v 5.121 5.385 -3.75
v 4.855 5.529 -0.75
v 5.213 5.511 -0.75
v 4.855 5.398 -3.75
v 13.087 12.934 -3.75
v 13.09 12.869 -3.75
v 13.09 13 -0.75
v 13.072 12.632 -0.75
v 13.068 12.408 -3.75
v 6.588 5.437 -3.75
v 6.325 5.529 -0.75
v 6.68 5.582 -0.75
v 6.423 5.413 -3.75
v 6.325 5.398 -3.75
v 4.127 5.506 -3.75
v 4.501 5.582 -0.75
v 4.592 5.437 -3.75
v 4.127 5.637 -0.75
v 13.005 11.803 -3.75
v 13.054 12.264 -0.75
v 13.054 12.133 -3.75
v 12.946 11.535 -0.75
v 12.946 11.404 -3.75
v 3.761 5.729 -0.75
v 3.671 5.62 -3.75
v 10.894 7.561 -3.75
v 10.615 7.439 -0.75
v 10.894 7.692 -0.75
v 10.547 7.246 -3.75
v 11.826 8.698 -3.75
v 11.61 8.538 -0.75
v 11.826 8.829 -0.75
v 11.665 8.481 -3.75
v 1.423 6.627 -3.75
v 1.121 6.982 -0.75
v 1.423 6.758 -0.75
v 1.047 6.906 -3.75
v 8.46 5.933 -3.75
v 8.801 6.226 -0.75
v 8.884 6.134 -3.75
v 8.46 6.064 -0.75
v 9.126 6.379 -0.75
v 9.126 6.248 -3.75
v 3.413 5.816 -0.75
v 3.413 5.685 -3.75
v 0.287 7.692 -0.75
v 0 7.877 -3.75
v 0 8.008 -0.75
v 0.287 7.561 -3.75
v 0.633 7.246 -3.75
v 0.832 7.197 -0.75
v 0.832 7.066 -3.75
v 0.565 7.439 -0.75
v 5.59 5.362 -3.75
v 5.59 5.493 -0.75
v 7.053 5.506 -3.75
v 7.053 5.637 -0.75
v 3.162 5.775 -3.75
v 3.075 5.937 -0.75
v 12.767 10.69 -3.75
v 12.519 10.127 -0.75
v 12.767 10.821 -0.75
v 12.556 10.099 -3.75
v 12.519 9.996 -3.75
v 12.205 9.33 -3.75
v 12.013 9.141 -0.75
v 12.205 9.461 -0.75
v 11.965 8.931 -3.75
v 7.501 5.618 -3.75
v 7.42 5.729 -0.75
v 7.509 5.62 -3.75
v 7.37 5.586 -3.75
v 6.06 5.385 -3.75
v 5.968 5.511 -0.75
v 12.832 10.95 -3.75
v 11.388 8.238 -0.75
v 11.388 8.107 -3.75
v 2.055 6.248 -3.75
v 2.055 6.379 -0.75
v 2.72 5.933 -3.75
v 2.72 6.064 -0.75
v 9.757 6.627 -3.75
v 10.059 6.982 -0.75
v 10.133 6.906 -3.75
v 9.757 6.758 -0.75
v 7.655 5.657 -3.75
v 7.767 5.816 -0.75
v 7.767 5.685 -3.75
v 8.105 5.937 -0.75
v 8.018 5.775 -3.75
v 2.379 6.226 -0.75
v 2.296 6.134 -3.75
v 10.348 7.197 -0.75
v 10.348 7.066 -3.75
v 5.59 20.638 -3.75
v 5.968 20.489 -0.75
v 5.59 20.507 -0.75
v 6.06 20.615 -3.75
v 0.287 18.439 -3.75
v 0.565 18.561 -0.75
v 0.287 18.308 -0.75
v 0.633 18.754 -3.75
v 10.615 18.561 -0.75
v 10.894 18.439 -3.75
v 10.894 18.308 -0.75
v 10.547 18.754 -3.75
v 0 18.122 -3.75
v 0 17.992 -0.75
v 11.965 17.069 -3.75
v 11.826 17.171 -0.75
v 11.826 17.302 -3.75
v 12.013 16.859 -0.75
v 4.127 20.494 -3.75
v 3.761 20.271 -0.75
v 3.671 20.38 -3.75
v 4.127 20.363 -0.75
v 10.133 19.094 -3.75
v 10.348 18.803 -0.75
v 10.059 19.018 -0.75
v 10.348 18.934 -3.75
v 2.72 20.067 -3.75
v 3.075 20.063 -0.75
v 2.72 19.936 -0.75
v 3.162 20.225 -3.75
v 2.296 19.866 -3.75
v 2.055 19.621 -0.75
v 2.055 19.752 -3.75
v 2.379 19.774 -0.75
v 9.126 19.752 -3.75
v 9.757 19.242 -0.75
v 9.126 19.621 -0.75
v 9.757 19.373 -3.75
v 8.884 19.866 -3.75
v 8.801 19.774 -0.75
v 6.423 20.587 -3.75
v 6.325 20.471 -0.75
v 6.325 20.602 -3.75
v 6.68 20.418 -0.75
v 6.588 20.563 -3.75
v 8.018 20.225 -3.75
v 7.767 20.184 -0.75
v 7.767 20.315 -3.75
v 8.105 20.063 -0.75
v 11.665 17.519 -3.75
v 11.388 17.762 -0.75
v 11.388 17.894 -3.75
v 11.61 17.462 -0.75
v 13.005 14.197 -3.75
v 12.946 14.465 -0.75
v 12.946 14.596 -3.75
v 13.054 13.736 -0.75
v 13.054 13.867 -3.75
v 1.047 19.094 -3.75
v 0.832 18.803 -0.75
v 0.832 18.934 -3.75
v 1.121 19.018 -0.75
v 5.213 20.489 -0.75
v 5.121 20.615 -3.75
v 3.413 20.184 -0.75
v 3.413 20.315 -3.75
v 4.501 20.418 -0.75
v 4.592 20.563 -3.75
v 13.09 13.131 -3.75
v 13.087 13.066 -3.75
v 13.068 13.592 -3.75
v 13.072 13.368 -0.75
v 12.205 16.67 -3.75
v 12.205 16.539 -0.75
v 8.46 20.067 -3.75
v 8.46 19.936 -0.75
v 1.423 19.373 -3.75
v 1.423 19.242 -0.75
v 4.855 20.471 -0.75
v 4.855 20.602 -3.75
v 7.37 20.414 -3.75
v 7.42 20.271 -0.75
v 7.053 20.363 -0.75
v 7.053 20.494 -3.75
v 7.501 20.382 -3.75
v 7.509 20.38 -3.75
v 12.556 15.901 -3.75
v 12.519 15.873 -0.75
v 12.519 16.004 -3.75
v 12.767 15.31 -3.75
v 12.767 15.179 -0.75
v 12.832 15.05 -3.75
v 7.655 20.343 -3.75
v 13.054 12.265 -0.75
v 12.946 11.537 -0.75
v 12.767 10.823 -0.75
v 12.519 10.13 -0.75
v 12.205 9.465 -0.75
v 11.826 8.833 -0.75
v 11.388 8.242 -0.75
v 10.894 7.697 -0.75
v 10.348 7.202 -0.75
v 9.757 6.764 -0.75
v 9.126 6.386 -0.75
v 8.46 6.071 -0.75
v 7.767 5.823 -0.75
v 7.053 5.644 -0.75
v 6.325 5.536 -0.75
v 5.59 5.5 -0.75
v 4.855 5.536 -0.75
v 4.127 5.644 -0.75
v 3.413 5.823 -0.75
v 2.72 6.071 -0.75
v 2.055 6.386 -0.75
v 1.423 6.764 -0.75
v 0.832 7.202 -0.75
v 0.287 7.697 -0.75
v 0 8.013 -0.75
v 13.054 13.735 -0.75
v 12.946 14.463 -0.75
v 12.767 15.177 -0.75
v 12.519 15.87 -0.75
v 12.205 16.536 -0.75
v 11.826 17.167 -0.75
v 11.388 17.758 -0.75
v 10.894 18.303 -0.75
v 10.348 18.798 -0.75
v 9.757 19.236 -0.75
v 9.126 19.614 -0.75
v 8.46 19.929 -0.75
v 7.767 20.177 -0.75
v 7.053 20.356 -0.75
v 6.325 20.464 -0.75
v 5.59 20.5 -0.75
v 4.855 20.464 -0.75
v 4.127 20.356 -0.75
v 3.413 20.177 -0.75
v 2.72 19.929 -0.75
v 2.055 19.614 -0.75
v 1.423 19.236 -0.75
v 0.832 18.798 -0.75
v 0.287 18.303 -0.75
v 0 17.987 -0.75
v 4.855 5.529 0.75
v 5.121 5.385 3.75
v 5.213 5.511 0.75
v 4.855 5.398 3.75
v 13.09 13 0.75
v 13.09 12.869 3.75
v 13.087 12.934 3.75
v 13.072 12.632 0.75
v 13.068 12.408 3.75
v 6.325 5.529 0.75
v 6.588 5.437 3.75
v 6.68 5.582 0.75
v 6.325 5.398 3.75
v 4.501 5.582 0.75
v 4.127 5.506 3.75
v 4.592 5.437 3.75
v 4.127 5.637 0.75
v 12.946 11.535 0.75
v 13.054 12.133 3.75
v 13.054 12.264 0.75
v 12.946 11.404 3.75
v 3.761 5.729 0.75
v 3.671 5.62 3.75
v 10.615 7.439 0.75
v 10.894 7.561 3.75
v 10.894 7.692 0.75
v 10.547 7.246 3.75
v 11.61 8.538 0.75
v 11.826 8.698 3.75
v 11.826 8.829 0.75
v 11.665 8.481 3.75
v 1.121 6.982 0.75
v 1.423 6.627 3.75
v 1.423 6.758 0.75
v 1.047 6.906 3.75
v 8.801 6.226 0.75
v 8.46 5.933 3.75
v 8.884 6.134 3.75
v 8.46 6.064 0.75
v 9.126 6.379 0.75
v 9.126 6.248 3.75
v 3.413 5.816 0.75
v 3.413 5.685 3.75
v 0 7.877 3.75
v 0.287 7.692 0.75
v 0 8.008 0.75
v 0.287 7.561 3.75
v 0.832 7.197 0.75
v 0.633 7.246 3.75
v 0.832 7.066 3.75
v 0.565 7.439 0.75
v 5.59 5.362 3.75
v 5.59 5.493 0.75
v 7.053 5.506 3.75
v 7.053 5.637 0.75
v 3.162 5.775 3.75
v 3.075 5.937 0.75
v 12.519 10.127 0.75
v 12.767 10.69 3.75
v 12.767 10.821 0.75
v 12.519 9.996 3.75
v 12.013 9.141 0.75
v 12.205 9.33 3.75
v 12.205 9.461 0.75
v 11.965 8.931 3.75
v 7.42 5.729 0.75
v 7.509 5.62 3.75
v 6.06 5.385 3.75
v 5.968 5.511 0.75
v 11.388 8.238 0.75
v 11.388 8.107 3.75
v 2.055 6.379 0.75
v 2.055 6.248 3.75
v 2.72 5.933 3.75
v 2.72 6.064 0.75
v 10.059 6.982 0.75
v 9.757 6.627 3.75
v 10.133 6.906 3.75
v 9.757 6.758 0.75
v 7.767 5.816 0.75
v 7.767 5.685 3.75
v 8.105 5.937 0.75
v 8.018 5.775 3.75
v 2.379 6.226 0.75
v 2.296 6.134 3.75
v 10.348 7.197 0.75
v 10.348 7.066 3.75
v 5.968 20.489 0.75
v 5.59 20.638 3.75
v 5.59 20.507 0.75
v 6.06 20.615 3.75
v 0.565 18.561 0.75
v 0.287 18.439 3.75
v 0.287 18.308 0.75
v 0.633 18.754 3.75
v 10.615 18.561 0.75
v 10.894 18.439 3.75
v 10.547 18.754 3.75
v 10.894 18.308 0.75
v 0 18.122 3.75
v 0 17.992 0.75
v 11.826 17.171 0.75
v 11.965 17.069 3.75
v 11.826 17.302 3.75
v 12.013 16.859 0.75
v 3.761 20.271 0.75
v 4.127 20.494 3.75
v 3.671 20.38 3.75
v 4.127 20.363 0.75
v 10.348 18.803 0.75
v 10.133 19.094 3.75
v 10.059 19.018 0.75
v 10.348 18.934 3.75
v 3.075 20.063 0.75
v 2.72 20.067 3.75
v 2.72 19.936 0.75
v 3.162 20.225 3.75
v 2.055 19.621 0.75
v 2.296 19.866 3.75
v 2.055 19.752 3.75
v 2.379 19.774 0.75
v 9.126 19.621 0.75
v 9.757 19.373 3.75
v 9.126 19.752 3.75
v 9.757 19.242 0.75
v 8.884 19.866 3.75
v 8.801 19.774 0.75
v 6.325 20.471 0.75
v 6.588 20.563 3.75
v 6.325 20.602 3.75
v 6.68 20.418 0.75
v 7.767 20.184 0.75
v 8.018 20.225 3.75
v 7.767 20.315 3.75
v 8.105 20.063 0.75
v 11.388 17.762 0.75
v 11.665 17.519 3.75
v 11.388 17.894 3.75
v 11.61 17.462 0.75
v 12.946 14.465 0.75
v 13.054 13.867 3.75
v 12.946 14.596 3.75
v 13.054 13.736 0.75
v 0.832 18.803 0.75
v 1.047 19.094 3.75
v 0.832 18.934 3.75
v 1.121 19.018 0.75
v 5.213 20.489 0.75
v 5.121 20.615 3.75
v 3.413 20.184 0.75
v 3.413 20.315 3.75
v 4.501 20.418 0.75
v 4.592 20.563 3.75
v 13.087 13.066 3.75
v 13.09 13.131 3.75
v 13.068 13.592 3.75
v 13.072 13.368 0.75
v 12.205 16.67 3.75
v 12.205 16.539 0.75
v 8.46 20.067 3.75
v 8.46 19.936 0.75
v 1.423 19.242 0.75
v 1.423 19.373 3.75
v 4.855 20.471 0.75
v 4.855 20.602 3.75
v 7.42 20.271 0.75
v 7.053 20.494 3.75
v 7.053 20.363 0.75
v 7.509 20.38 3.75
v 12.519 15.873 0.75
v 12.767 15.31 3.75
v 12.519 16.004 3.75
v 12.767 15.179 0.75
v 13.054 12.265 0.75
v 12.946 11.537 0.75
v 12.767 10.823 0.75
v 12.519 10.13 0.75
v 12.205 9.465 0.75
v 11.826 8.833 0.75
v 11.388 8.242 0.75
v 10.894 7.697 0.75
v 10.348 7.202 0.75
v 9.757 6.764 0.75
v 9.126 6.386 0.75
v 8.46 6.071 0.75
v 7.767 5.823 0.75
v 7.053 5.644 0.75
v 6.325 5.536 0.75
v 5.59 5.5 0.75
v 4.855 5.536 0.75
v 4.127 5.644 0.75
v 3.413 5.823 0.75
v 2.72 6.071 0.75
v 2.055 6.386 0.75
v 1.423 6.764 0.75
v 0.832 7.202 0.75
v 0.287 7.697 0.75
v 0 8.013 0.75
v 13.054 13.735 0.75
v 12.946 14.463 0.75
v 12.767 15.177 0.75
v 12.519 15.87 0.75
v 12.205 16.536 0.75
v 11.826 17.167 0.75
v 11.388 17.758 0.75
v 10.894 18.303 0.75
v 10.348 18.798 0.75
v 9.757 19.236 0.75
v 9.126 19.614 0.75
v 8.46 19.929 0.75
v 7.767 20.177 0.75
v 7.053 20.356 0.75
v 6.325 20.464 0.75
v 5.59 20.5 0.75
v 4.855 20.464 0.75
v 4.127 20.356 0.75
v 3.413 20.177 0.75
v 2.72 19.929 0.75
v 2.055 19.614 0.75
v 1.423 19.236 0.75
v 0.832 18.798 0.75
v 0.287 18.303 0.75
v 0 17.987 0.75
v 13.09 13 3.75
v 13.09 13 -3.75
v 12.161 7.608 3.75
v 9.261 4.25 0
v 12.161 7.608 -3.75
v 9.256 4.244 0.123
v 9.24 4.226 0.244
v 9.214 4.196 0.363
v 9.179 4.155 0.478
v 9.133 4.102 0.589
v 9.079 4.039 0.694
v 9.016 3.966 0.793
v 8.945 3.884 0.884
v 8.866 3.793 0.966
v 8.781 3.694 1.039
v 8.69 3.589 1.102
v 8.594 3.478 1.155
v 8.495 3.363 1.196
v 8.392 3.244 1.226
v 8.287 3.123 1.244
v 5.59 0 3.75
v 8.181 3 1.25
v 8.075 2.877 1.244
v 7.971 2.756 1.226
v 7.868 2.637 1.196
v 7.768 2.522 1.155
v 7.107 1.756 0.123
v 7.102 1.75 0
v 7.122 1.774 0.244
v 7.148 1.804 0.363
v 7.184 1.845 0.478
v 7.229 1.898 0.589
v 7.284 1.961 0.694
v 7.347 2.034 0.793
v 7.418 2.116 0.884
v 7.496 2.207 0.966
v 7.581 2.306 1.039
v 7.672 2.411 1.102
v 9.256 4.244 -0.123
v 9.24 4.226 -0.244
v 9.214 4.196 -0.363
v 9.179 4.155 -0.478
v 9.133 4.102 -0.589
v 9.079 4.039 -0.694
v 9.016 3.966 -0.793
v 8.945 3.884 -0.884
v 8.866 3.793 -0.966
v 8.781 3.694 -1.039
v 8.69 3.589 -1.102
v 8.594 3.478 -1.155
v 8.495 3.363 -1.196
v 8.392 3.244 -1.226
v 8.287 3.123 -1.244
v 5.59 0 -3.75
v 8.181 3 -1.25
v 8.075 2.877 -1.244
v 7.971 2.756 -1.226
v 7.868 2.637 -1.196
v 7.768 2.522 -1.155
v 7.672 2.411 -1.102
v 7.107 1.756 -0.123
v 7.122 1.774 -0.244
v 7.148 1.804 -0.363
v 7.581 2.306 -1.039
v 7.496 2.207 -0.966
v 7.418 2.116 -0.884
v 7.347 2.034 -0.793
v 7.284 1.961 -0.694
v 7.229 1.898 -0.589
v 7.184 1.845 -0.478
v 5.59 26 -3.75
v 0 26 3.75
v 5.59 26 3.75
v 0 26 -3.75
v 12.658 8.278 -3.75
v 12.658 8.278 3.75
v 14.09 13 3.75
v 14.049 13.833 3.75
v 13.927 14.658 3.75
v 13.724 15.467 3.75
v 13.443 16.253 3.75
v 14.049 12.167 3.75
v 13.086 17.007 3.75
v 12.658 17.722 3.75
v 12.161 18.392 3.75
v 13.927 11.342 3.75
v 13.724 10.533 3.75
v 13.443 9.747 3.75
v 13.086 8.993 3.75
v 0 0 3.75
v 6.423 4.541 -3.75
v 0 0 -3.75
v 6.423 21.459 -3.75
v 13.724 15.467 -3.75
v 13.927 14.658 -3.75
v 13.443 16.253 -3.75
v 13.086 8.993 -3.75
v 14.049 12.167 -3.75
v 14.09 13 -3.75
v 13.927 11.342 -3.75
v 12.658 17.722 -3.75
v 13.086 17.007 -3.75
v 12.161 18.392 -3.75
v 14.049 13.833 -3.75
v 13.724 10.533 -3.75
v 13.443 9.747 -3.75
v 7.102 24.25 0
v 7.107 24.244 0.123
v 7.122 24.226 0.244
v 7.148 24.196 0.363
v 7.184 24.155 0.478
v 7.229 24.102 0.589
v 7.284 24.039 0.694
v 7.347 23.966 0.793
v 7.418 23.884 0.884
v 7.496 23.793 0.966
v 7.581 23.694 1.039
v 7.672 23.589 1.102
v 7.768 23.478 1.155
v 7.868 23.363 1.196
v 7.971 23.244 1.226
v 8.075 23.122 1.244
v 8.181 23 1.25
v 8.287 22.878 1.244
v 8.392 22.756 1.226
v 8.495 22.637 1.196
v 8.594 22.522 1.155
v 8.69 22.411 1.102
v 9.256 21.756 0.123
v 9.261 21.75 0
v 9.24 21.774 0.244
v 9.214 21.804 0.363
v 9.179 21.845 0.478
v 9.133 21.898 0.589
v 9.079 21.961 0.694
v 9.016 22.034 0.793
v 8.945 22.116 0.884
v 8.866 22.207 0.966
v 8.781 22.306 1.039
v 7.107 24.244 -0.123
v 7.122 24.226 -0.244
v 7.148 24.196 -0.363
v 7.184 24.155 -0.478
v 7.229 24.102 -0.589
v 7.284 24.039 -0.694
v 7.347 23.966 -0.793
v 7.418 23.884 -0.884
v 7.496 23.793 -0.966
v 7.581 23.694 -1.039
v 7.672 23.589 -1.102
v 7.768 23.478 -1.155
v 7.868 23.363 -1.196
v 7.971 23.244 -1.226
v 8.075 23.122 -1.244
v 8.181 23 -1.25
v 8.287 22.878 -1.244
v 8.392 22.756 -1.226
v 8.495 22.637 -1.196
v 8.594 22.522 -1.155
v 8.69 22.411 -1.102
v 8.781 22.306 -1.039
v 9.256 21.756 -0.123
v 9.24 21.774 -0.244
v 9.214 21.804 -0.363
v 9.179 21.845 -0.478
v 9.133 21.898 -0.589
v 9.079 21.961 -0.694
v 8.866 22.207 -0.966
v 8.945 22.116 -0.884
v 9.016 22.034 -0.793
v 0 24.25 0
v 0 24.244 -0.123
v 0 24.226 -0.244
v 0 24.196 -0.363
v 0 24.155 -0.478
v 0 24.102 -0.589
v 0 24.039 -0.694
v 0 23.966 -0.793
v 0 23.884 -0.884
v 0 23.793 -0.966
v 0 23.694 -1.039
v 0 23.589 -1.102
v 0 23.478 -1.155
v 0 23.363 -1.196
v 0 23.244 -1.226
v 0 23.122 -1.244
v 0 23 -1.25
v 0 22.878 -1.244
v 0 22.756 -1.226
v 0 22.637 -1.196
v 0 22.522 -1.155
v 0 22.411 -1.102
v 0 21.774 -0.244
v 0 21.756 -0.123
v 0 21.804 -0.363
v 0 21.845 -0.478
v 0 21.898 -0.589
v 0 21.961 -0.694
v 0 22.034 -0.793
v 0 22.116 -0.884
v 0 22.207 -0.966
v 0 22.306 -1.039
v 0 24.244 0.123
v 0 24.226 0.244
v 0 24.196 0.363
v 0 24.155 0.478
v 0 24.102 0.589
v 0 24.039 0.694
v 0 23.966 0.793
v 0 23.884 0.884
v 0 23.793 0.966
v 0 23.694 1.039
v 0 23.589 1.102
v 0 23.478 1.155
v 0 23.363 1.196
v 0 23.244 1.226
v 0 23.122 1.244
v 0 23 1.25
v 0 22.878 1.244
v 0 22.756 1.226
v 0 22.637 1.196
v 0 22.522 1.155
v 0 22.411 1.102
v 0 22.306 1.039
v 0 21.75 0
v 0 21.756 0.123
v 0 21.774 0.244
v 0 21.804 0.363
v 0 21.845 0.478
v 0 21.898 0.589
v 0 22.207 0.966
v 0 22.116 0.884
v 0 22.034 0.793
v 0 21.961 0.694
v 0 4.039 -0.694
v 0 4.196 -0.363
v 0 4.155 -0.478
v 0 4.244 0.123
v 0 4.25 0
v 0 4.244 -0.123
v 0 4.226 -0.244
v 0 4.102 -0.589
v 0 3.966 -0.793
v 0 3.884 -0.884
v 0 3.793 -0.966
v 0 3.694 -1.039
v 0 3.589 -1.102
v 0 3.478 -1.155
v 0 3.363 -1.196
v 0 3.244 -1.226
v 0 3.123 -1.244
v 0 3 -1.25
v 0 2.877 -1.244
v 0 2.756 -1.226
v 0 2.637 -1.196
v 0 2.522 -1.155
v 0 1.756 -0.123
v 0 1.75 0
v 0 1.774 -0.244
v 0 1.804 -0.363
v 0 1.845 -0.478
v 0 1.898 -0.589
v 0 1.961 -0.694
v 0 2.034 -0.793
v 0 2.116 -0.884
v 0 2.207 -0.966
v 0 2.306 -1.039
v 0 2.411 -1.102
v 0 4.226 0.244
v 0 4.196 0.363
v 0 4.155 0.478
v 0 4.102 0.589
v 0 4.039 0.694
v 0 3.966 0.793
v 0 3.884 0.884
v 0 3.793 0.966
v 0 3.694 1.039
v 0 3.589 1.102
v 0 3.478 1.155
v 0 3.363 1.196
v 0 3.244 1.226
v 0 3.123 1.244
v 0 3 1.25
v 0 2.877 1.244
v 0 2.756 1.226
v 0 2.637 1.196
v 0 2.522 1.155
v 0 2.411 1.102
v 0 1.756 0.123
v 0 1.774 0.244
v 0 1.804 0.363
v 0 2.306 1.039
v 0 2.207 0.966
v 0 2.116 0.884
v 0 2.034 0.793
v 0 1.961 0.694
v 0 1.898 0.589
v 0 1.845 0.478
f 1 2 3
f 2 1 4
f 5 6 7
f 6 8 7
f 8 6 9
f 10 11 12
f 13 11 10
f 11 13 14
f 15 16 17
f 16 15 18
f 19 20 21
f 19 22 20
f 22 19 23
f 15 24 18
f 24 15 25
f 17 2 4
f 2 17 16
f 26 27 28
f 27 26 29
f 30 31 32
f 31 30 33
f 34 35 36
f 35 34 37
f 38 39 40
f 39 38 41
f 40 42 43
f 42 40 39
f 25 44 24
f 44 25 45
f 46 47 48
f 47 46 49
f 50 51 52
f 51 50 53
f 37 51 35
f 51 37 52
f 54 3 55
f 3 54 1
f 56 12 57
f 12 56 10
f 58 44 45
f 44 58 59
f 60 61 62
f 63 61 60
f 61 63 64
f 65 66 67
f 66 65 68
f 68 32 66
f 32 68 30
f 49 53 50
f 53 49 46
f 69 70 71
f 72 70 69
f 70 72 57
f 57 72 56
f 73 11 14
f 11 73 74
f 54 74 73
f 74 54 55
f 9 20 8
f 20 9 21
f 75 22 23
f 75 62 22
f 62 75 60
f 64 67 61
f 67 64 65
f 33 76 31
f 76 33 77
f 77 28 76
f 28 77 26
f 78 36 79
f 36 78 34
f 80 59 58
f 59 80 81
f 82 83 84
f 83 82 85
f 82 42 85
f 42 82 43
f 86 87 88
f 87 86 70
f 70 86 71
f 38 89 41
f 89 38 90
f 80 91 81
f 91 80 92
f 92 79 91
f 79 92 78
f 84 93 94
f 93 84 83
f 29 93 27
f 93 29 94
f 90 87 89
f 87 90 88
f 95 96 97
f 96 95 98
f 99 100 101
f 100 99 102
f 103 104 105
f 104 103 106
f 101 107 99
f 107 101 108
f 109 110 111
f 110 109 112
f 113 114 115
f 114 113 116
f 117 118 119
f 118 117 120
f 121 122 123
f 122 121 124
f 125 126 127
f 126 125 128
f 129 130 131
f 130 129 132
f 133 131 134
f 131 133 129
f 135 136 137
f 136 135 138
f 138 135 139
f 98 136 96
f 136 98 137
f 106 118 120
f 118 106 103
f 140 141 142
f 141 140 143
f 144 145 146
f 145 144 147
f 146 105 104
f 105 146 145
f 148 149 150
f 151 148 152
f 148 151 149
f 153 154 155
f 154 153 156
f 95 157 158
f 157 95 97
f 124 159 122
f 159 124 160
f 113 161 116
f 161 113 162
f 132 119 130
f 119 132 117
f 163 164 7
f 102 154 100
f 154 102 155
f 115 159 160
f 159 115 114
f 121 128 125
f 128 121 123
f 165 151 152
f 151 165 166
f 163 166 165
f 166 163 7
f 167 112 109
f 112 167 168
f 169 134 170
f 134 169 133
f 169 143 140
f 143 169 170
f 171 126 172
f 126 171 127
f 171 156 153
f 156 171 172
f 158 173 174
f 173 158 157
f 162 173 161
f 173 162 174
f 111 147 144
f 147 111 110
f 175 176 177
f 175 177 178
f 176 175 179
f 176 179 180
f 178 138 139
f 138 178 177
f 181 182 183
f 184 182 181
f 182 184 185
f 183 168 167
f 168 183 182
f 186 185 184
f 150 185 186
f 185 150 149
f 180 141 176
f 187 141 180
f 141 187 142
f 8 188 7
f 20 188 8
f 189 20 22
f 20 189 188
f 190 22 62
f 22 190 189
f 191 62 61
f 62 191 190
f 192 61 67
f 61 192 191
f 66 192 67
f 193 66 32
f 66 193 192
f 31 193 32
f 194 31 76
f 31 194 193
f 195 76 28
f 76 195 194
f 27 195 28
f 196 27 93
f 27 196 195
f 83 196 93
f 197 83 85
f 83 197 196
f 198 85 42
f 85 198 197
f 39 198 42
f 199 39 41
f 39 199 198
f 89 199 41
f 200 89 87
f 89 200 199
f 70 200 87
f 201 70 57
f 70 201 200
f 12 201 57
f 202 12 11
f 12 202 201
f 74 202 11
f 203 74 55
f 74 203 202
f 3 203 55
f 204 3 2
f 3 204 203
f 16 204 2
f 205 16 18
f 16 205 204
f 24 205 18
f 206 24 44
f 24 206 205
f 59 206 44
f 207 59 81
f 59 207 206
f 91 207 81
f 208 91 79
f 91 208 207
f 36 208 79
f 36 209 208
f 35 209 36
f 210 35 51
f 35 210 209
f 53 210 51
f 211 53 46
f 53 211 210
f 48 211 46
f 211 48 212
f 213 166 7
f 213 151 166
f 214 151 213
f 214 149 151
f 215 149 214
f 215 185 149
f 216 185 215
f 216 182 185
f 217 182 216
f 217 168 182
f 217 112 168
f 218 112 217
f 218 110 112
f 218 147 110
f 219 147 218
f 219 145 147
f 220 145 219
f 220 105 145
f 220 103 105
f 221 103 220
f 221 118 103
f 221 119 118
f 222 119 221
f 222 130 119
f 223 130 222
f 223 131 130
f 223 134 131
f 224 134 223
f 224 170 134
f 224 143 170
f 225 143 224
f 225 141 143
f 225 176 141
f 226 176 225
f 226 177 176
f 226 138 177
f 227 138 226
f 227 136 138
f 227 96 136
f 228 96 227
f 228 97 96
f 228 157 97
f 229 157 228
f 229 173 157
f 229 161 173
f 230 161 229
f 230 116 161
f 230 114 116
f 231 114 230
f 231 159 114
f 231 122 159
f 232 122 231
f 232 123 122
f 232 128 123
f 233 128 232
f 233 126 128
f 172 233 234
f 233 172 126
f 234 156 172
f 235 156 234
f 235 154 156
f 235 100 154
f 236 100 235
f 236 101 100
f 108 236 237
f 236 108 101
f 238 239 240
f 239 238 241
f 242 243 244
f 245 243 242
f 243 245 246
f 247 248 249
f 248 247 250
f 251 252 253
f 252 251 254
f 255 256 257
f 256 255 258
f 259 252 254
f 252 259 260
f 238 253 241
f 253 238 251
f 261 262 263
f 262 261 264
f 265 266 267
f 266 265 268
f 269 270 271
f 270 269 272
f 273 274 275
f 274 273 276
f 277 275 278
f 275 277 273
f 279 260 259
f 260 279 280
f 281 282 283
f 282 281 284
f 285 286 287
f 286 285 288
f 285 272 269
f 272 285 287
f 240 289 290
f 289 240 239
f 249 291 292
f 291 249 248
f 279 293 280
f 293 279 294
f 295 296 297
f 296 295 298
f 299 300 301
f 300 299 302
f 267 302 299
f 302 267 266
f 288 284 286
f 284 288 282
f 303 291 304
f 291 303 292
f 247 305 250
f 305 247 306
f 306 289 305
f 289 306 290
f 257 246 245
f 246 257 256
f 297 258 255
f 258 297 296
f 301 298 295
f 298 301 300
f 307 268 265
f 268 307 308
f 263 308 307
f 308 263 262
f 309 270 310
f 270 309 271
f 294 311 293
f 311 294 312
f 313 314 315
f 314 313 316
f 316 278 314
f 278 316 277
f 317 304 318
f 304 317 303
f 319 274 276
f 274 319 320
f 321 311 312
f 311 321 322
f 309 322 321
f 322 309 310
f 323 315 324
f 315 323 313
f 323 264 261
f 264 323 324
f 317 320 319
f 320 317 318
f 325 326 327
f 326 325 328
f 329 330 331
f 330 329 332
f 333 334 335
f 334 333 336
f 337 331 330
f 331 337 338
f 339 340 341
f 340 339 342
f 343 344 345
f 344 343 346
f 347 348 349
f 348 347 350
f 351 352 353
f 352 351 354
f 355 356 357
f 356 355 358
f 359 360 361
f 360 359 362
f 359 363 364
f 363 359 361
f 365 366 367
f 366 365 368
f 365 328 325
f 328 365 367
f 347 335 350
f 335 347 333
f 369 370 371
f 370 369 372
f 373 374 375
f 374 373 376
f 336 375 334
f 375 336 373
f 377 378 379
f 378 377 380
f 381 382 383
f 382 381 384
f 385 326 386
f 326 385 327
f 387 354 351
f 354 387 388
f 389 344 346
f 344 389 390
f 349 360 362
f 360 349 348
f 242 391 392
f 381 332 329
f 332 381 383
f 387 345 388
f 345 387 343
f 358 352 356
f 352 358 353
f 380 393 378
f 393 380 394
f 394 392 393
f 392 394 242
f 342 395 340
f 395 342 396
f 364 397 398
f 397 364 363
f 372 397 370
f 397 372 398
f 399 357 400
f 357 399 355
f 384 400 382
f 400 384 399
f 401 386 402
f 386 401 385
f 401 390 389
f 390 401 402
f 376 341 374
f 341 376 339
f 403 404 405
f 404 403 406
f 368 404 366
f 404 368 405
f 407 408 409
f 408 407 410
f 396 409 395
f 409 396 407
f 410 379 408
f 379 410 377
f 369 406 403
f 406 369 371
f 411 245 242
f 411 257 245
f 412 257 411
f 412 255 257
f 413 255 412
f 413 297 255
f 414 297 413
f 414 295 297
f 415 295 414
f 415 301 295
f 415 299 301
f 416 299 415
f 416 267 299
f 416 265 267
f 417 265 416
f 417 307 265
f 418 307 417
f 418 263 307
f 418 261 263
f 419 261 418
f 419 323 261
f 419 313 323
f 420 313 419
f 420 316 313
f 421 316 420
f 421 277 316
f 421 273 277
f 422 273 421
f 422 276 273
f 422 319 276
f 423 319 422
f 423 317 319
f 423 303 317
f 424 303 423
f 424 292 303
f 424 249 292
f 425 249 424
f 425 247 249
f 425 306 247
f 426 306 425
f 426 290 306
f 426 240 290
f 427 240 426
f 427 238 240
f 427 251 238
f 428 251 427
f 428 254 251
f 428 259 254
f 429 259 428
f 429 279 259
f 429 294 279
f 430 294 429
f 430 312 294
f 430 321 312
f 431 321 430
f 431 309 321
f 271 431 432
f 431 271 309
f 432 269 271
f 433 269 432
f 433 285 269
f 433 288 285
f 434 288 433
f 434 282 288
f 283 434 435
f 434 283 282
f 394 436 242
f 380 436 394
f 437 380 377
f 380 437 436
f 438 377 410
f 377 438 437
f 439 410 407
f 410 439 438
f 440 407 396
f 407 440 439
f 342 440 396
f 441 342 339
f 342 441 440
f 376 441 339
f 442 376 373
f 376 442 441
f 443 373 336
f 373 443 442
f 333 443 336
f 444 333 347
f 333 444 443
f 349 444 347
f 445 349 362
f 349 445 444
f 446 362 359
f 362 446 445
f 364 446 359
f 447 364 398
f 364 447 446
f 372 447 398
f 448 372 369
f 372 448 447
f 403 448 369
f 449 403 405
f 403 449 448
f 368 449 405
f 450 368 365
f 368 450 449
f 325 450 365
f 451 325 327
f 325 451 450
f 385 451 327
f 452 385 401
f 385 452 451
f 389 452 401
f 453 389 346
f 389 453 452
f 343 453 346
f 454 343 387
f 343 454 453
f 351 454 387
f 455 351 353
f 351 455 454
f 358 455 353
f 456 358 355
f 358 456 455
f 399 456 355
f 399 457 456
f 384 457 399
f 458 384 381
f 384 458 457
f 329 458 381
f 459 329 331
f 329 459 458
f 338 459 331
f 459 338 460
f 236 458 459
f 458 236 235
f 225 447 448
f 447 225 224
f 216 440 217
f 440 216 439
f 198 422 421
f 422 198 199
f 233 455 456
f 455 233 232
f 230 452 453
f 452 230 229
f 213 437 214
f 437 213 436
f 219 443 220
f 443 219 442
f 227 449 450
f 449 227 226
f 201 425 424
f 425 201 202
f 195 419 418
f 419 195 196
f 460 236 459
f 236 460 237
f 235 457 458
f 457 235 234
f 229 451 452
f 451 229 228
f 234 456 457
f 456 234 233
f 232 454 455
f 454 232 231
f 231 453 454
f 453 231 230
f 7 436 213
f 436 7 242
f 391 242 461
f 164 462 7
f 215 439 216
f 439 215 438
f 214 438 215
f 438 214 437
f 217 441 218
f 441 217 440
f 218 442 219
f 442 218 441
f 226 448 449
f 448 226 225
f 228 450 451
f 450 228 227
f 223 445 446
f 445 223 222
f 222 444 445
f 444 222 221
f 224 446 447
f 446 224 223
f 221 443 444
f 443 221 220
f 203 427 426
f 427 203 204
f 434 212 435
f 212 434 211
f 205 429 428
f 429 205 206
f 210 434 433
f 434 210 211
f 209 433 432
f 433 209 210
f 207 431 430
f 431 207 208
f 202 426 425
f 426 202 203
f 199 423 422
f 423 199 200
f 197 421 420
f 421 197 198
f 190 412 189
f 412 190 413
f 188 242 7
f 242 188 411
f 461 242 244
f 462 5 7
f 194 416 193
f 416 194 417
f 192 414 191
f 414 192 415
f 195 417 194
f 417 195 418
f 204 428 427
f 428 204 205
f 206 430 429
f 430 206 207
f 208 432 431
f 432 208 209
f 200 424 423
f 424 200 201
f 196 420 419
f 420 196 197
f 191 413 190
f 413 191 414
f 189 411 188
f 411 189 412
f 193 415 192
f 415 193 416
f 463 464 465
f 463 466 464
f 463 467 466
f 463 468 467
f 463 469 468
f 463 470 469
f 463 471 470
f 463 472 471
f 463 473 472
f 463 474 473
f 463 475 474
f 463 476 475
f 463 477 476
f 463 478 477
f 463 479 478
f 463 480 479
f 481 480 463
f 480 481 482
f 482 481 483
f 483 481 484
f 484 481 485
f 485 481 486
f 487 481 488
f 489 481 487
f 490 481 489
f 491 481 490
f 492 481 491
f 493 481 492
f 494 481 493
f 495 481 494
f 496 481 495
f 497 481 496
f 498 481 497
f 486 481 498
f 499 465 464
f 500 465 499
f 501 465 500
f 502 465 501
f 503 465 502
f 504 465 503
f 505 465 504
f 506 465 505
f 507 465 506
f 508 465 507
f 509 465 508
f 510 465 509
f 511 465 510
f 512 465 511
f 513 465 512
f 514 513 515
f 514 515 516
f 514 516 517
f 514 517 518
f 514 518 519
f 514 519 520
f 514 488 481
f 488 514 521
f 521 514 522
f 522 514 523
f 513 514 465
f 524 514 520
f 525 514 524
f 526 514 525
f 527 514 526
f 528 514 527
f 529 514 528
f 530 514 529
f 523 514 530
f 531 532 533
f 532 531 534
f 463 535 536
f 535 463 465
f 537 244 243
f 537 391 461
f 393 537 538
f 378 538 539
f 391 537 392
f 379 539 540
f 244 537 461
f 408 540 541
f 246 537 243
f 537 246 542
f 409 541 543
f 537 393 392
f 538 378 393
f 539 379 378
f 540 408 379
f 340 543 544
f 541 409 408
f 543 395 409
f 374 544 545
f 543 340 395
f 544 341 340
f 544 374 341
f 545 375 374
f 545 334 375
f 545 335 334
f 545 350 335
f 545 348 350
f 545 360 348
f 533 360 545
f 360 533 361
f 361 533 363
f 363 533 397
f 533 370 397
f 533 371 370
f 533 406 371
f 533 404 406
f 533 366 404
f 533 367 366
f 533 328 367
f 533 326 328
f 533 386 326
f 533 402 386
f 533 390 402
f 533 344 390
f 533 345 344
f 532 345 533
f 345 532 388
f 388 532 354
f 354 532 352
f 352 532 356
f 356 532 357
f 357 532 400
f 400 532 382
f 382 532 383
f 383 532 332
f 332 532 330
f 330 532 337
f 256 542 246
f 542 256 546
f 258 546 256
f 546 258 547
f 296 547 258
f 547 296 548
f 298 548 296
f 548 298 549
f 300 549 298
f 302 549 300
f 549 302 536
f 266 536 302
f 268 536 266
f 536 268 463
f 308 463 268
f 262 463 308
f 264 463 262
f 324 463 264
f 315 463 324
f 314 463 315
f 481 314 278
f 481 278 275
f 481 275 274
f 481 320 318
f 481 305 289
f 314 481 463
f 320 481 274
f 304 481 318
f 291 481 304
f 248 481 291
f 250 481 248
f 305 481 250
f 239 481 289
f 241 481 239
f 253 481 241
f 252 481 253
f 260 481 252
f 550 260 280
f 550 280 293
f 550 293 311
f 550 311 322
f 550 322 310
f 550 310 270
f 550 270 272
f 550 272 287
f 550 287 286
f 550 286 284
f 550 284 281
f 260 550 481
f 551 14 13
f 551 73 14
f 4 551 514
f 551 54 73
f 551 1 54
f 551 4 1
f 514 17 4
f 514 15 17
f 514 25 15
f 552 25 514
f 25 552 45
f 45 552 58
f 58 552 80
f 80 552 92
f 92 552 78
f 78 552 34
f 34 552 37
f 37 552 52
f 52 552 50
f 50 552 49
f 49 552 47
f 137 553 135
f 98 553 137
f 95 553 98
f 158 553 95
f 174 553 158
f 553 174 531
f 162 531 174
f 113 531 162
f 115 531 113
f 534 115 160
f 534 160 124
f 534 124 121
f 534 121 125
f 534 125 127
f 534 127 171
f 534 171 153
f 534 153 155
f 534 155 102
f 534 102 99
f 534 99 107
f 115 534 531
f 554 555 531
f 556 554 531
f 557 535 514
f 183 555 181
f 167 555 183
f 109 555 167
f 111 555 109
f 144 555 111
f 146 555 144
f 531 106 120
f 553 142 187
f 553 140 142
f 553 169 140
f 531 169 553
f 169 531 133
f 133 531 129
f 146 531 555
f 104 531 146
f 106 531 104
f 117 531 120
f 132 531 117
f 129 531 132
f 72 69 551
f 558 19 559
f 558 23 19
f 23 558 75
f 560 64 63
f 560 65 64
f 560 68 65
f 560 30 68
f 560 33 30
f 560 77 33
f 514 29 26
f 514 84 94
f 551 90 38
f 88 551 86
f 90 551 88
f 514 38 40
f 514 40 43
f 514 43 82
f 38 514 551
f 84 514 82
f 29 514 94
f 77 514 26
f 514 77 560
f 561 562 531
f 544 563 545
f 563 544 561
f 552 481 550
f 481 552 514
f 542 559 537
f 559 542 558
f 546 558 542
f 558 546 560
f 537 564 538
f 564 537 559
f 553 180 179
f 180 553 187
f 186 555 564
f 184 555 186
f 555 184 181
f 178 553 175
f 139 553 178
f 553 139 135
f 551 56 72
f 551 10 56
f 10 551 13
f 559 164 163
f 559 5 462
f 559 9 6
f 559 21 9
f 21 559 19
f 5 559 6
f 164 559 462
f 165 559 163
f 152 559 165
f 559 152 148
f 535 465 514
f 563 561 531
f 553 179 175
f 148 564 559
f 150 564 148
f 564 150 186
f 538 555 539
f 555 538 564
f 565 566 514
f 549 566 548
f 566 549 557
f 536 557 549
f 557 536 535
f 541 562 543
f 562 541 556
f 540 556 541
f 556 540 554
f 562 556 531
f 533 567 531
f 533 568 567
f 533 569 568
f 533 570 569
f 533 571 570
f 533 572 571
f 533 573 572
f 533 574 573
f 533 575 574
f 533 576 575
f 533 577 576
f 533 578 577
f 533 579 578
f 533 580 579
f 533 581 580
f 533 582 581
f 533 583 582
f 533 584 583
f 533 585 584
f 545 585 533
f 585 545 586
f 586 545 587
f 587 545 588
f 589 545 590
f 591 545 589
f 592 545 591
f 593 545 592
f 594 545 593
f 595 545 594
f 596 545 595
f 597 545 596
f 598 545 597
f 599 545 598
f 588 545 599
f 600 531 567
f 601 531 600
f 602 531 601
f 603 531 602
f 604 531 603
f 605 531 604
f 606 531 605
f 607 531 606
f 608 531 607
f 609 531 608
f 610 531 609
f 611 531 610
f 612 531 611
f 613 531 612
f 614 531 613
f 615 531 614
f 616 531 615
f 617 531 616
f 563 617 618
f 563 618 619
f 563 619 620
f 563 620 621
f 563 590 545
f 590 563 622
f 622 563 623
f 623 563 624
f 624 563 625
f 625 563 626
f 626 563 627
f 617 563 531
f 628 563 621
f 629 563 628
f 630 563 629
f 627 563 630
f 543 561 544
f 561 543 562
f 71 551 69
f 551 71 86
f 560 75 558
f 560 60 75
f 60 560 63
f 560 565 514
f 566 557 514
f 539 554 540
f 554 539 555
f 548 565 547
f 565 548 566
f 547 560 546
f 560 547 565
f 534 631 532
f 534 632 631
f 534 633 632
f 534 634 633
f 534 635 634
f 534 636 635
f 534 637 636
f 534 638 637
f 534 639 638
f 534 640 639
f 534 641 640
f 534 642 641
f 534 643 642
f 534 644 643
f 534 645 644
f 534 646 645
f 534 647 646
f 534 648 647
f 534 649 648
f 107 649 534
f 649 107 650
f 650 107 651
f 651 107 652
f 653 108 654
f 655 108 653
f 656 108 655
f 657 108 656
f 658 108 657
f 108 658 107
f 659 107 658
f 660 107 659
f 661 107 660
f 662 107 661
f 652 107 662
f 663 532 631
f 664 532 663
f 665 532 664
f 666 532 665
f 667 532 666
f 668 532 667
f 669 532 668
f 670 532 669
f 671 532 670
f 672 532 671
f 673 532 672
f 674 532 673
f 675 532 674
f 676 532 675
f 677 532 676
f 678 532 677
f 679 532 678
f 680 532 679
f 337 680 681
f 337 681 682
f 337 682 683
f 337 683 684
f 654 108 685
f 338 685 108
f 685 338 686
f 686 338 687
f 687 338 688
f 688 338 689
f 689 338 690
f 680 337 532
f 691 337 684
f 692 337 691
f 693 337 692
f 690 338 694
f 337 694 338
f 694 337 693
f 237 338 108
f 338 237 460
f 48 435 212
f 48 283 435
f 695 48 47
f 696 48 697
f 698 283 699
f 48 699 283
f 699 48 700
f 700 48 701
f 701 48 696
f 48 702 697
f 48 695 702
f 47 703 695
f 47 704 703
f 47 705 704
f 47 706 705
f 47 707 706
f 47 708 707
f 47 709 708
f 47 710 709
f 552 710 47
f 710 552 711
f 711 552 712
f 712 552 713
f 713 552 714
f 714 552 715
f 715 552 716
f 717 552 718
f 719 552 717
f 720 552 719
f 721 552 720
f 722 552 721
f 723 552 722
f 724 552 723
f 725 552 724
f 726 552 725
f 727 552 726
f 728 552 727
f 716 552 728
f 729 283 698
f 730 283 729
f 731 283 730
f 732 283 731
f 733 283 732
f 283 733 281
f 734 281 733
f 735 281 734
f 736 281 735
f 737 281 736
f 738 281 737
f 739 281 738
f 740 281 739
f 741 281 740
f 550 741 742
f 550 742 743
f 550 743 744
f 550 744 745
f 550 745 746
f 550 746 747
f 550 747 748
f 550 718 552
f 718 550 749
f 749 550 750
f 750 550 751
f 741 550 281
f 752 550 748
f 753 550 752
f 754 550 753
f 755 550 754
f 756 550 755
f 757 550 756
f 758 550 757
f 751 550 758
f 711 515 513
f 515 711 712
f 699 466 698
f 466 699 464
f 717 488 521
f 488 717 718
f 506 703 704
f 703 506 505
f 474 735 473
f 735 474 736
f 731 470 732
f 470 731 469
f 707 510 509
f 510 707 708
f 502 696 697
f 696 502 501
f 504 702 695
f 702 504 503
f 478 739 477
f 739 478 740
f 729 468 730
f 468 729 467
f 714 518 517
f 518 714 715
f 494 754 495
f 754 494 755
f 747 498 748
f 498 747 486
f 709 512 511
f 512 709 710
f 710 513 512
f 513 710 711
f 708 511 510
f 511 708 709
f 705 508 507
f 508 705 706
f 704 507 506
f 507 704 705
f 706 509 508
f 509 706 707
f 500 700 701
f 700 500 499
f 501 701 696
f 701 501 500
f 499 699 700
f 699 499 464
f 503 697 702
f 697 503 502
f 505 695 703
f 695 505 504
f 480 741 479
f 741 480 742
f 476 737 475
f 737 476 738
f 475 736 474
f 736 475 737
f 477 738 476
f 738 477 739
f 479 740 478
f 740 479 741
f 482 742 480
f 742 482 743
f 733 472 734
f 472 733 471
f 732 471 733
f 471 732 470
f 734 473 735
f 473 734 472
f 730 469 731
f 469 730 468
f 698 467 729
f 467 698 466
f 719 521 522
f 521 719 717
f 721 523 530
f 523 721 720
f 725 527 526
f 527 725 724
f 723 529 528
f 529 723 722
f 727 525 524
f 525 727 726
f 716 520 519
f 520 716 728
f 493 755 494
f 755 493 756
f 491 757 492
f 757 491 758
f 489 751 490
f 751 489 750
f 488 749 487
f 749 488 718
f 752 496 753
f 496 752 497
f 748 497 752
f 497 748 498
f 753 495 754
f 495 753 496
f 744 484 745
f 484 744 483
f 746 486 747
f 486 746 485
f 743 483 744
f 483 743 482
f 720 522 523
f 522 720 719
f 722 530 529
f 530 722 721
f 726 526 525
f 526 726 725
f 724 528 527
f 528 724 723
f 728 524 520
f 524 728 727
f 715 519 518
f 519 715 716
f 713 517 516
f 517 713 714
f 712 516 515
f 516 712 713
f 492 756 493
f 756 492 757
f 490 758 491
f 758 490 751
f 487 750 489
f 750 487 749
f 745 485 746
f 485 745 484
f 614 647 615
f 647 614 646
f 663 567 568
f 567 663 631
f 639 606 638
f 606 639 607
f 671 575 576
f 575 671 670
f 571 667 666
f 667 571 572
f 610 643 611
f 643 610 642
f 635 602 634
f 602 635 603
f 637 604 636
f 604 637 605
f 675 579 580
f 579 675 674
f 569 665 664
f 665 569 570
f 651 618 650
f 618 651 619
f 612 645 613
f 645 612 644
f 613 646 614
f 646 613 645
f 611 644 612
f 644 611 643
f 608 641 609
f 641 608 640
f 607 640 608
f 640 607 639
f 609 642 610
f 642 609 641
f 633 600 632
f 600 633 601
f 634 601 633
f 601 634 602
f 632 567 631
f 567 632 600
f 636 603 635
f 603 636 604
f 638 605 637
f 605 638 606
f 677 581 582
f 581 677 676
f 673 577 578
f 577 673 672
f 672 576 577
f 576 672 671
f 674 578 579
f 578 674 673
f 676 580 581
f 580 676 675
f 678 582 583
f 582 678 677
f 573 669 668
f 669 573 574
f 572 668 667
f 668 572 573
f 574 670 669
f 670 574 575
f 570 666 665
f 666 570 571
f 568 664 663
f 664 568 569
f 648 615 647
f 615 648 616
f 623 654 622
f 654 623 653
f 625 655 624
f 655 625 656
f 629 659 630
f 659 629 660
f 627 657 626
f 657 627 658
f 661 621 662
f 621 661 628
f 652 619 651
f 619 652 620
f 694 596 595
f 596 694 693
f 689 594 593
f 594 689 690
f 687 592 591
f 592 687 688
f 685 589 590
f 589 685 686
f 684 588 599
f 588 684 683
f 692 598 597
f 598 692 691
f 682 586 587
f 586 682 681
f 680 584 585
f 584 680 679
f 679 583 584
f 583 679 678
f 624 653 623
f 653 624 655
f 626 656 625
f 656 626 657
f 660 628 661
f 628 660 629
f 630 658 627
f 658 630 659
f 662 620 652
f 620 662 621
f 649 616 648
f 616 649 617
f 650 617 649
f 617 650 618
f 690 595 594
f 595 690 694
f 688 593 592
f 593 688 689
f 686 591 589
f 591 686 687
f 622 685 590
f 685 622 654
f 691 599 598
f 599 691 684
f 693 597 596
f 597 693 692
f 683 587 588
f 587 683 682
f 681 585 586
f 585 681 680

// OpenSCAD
// Y - carriage bearing holder.

nozzle_diameter = 0.4;

// The Y-carriage has a 10mm opening that the bearing seats into.
bearing_ID = 8;
bearing_OD = 15;
bearing_length = 24;
bearing_radius = bearing_OD / 2;

// Mounting Dimensions on the y-carriage.
// Holes are 20mm OC, for M3.
mount_opening_width = 10;
mount_hole_centers = 20;
mount_hole_od = 3;

// If an upper opening is needed, this will carve open the top.
upper_opening_increase = 0;
strap_width = 7.5;
strap_hole_diameter = 2.5;
strap_wiggle = 5;
strap_wiggle_flat = 1.5;

// Calculated properties
bearing_inset = bearing_radius - sqrt(pow(bearing_radius, 2) - pow((mount_opening_width / 2), 2));
mount_width = mount_hole_centers + mount_hole_od * 2;
mount_height = (bearing_OD - bearing_ID) / 2 - bearing_inset - 0.75;


$fn = 64;

rotate([0, 90, 0]) difference() {
    hull() {
        translate([-strap_width / 2, 0, 0]) cube([strap_width, mount_width, bearing_radius - bearing_inset]);
        translate([0, mount_width / 2, bearing_radius - bearing_inset]) 
            rotate([0, 90, 0]) cylinder(d = bearing_OD + 2, h = strap_width, center = true);
    }

    // Cut the bottom off.
    translate([-bearing_length, 0, - bearing_inset - 1]) 
        cube([bearing_length * 2, mount_width, bearing_inset + 1]);

    // mounting holes (tap to M3)
    translate([0, mount_hole_od, -3]) 
        cylinder(d = strap_hole_diameter, h = bearing_OD + 3);
    translate([0, 20, 0]) 
        translate([0, mount_hole_od, -3]) 
            cylinder(d = strap_hole_diameter, h = bearing_OD + 3);

    // bearing body
    translate([0, mount_width / 2, bearing_radius - bearing_inset]) rotate([0, 90, 0]) {
        cylinder(d = bearing_OD,  h = bearing_length, center = true);
        // Allow horizontal wiggle.
        if (strap_wiggle != 0) {
            for (zm = [0, 1]) {
                mirror([0, 0, zm])
                intersection() {
                    translate([0, 0, strap_wiggle_flat / 2]) 
                        cylinder(d = bearing_OD + 2, h = bearing_length / 2);
                    translate([0, 0, strap_wiggle_flat / 2]) {
                        union() {
                            rotate([strap_wiggle / 2, 0, 0]) cylinder(d = bearing_OD,  h = bearing_length, center = true);
                            rotate([-strap_wiggle / 2, 0, 0])cylinder(d = bearing_OD,  h = bearing_length, center = true);
                        }
                    }
                }
            }
        }
        
        if (upper_opening_increase > 0) {
            translate([bearing_radius / 2, 0, 0]) 
                cube([bearing_radius, bearing_OD - upper_opening_increase, bearing_length], center = true);
        }
    }

    // Shaft (for visualization)
    translate([0, mount_width / 2, bearing_radius - bearing_inset]) rotate([0, 90, 0]) 
        cylinder(d = bearing_ID, h = 2 * bearing_length, center = true);
}
